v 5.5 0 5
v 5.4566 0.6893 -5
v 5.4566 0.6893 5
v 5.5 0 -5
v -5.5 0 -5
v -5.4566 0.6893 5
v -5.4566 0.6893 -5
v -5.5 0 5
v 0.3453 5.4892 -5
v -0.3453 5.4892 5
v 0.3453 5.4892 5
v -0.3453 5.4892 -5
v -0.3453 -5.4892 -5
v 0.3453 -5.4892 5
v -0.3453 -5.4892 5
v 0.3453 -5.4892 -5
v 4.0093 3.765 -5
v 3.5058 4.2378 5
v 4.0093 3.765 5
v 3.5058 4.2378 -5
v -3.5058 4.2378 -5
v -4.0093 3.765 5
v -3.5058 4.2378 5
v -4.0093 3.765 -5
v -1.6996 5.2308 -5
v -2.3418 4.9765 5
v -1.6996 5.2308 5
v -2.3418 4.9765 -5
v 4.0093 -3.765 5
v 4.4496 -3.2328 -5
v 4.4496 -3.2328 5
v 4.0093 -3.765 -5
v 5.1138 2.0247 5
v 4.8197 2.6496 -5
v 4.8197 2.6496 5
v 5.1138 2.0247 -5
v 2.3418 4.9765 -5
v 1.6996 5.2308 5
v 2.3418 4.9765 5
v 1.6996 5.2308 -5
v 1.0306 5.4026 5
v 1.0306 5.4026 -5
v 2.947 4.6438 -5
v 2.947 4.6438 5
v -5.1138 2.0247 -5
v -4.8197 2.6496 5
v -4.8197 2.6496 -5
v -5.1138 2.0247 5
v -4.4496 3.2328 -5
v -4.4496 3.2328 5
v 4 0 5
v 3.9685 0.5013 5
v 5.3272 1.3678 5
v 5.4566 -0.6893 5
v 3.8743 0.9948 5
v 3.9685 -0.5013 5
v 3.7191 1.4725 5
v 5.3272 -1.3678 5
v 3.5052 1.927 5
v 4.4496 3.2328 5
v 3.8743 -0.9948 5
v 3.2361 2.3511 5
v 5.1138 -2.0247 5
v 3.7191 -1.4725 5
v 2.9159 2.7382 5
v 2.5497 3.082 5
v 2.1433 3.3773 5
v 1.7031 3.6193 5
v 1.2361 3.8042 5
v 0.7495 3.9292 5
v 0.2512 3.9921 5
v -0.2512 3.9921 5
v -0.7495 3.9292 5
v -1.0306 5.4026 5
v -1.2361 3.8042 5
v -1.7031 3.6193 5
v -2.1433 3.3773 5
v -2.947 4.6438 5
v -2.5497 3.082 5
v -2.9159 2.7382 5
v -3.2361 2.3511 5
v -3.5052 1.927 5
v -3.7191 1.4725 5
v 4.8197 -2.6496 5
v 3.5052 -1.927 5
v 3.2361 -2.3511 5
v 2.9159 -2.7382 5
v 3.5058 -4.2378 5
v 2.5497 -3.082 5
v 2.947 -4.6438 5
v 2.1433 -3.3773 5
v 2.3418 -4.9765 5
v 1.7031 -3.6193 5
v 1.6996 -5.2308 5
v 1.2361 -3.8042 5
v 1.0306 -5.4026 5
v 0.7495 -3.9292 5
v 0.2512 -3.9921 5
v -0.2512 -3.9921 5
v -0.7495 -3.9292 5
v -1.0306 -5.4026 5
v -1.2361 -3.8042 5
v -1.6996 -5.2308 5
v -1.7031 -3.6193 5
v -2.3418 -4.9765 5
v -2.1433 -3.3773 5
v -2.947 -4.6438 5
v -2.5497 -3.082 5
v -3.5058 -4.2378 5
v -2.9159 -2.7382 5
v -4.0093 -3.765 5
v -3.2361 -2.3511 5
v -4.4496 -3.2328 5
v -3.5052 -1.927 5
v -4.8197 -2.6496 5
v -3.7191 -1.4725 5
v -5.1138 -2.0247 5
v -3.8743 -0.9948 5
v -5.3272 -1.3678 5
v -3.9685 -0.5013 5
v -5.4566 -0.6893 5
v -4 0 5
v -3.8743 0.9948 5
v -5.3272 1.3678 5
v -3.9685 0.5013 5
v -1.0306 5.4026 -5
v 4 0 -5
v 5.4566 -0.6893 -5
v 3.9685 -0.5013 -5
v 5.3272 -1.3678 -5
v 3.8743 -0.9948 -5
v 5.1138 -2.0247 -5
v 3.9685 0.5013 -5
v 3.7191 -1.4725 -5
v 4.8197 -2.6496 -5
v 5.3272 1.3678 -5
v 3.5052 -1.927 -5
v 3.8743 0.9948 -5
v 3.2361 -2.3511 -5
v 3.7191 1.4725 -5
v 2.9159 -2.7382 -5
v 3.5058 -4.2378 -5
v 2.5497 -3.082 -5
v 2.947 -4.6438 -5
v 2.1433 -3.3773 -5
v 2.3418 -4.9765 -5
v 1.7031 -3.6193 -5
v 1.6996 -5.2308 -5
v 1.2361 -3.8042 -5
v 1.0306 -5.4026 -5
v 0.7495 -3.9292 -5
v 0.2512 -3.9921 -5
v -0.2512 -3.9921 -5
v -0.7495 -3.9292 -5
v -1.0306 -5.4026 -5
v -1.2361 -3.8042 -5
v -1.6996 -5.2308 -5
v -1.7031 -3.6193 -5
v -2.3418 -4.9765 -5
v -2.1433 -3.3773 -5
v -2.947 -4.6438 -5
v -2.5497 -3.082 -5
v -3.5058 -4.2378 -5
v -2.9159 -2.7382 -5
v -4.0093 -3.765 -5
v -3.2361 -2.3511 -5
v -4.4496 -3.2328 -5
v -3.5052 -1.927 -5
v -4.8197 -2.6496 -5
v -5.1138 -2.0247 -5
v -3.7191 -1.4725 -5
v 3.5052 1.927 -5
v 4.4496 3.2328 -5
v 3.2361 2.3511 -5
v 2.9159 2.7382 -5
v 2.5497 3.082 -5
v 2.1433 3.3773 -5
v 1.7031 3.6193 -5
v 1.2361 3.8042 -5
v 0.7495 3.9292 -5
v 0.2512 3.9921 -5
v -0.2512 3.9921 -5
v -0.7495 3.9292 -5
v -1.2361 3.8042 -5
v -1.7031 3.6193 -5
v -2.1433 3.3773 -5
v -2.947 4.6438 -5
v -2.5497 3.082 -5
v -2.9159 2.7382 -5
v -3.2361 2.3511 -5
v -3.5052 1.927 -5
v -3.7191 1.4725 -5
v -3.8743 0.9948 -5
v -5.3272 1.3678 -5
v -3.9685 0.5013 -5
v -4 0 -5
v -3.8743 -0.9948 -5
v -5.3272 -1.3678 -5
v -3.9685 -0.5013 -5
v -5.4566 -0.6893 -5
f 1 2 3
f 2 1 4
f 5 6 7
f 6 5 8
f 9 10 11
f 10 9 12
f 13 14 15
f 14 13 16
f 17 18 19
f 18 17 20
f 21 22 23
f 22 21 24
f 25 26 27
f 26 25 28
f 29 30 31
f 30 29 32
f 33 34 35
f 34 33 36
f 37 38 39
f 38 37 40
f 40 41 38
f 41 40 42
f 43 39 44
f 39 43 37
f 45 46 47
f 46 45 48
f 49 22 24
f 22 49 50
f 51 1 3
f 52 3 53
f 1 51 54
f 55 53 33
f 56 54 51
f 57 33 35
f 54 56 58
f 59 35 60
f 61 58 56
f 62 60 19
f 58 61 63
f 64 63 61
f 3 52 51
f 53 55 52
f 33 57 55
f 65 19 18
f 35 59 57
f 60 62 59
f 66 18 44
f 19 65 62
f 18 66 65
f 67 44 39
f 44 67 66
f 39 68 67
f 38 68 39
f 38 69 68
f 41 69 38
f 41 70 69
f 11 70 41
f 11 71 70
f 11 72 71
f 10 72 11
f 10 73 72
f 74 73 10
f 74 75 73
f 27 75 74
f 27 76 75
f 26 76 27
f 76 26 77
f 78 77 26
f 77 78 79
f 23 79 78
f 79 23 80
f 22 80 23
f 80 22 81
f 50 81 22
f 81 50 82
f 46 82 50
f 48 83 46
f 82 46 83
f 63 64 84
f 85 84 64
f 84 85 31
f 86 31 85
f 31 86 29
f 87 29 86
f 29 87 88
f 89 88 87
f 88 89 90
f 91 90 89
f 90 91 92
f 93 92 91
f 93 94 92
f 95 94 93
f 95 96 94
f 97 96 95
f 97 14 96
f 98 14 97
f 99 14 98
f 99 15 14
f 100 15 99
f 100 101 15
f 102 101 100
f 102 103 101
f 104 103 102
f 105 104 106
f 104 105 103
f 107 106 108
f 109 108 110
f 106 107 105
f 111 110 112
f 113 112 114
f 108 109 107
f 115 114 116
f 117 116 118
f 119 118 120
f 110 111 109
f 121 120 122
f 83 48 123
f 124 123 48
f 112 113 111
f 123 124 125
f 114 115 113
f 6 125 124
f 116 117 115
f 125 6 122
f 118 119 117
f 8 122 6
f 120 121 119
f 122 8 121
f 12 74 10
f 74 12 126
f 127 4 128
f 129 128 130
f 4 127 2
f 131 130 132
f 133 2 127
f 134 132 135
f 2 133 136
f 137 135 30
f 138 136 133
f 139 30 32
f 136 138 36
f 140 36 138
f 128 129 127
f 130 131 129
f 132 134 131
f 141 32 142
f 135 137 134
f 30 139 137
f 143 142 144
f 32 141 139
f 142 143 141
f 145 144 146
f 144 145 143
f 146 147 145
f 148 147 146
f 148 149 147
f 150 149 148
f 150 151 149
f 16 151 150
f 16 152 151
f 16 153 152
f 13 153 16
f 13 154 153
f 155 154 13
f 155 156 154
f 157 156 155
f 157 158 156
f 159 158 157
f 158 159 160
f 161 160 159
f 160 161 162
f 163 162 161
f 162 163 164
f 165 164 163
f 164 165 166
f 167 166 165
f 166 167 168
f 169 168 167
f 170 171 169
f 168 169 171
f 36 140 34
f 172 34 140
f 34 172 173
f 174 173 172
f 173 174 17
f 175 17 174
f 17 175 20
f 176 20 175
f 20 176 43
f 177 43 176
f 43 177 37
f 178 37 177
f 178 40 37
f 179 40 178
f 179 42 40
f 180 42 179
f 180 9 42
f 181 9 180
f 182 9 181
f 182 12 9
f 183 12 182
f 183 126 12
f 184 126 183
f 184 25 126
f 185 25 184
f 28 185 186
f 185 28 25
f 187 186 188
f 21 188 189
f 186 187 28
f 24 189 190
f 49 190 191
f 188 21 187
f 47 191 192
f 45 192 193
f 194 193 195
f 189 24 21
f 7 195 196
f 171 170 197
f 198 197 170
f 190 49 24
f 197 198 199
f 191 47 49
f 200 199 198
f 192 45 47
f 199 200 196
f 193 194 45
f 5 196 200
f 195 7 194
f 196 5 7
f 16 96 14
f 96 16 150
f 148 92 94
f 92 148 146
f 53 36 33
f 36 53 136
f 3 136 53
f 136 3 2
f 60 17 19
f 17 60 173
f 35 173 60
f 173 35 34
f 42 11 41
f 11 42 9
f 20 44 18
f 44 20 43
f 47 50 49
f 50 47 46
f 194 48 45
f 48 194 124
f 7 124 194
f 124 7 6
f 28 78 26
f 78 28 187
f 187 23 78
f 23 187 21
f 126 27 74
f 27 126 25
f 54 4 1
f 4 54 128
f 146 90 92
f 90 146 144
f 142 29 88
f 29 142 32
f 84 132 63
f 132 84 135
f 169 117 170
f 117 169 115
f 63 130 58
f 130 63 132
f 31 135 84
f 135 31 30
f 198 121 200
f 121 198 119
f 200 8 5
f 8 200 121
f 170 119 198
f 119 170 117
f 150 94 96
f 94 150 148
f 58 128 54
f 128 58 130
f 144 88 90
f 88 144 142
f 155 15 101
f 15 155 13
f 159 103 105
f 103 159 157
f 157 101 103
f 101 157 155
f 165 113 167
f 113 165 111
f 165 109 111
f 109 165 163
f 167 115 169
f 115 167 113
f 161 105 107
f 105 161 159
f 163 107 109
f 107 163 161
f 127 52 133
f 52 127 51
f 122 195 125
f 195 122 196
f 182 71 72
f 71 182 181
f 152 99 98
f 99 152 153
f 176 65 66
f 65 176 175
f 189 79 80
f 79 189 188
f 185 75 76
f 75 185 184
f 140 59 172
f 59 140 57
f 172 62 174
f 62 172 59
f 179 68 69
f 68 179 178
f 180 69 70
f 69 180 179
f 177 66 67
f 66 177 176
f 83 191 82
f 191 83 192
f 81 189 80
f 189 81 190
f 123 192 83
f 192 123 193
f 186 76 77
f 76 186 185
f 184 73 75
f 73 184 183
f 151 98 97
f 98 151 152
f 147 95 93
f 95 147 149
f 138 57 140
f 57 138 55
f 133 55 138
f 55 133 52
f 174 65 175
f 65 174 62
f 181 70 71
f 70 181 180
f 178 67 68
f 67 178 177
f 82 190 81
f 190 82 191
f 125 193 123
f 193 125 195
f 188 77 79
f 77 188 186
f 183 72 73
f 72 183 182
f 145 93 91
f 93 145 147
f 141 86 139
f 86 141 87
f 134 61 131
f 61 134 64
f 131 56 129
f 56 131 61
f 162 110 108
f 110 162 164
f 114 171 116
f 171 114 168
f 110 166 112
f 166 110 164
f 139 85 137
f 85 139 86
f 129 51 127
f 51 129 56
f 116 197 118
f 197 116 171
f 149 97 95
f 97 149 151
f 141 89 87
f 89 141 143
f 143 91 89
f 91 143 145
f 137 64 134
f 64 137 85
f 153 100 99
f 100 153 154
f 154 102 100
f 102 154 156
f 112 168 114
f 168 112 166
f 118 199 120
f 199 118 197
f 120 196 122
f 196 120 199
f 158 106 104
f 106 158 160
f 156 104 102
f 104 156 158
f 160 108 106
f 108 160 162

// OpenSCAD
$fn = 50;


difference() {
	union() {
		translate(v = [0, 0, -5.0000000000]) {
			cylinder(h = 10, r = 5.5000000000);
		}
	}
	union() {
		translate(v = [0, 0, -100.0000000000]) {
			cylinder(h = 200, r = 4);
		}
	}
}
